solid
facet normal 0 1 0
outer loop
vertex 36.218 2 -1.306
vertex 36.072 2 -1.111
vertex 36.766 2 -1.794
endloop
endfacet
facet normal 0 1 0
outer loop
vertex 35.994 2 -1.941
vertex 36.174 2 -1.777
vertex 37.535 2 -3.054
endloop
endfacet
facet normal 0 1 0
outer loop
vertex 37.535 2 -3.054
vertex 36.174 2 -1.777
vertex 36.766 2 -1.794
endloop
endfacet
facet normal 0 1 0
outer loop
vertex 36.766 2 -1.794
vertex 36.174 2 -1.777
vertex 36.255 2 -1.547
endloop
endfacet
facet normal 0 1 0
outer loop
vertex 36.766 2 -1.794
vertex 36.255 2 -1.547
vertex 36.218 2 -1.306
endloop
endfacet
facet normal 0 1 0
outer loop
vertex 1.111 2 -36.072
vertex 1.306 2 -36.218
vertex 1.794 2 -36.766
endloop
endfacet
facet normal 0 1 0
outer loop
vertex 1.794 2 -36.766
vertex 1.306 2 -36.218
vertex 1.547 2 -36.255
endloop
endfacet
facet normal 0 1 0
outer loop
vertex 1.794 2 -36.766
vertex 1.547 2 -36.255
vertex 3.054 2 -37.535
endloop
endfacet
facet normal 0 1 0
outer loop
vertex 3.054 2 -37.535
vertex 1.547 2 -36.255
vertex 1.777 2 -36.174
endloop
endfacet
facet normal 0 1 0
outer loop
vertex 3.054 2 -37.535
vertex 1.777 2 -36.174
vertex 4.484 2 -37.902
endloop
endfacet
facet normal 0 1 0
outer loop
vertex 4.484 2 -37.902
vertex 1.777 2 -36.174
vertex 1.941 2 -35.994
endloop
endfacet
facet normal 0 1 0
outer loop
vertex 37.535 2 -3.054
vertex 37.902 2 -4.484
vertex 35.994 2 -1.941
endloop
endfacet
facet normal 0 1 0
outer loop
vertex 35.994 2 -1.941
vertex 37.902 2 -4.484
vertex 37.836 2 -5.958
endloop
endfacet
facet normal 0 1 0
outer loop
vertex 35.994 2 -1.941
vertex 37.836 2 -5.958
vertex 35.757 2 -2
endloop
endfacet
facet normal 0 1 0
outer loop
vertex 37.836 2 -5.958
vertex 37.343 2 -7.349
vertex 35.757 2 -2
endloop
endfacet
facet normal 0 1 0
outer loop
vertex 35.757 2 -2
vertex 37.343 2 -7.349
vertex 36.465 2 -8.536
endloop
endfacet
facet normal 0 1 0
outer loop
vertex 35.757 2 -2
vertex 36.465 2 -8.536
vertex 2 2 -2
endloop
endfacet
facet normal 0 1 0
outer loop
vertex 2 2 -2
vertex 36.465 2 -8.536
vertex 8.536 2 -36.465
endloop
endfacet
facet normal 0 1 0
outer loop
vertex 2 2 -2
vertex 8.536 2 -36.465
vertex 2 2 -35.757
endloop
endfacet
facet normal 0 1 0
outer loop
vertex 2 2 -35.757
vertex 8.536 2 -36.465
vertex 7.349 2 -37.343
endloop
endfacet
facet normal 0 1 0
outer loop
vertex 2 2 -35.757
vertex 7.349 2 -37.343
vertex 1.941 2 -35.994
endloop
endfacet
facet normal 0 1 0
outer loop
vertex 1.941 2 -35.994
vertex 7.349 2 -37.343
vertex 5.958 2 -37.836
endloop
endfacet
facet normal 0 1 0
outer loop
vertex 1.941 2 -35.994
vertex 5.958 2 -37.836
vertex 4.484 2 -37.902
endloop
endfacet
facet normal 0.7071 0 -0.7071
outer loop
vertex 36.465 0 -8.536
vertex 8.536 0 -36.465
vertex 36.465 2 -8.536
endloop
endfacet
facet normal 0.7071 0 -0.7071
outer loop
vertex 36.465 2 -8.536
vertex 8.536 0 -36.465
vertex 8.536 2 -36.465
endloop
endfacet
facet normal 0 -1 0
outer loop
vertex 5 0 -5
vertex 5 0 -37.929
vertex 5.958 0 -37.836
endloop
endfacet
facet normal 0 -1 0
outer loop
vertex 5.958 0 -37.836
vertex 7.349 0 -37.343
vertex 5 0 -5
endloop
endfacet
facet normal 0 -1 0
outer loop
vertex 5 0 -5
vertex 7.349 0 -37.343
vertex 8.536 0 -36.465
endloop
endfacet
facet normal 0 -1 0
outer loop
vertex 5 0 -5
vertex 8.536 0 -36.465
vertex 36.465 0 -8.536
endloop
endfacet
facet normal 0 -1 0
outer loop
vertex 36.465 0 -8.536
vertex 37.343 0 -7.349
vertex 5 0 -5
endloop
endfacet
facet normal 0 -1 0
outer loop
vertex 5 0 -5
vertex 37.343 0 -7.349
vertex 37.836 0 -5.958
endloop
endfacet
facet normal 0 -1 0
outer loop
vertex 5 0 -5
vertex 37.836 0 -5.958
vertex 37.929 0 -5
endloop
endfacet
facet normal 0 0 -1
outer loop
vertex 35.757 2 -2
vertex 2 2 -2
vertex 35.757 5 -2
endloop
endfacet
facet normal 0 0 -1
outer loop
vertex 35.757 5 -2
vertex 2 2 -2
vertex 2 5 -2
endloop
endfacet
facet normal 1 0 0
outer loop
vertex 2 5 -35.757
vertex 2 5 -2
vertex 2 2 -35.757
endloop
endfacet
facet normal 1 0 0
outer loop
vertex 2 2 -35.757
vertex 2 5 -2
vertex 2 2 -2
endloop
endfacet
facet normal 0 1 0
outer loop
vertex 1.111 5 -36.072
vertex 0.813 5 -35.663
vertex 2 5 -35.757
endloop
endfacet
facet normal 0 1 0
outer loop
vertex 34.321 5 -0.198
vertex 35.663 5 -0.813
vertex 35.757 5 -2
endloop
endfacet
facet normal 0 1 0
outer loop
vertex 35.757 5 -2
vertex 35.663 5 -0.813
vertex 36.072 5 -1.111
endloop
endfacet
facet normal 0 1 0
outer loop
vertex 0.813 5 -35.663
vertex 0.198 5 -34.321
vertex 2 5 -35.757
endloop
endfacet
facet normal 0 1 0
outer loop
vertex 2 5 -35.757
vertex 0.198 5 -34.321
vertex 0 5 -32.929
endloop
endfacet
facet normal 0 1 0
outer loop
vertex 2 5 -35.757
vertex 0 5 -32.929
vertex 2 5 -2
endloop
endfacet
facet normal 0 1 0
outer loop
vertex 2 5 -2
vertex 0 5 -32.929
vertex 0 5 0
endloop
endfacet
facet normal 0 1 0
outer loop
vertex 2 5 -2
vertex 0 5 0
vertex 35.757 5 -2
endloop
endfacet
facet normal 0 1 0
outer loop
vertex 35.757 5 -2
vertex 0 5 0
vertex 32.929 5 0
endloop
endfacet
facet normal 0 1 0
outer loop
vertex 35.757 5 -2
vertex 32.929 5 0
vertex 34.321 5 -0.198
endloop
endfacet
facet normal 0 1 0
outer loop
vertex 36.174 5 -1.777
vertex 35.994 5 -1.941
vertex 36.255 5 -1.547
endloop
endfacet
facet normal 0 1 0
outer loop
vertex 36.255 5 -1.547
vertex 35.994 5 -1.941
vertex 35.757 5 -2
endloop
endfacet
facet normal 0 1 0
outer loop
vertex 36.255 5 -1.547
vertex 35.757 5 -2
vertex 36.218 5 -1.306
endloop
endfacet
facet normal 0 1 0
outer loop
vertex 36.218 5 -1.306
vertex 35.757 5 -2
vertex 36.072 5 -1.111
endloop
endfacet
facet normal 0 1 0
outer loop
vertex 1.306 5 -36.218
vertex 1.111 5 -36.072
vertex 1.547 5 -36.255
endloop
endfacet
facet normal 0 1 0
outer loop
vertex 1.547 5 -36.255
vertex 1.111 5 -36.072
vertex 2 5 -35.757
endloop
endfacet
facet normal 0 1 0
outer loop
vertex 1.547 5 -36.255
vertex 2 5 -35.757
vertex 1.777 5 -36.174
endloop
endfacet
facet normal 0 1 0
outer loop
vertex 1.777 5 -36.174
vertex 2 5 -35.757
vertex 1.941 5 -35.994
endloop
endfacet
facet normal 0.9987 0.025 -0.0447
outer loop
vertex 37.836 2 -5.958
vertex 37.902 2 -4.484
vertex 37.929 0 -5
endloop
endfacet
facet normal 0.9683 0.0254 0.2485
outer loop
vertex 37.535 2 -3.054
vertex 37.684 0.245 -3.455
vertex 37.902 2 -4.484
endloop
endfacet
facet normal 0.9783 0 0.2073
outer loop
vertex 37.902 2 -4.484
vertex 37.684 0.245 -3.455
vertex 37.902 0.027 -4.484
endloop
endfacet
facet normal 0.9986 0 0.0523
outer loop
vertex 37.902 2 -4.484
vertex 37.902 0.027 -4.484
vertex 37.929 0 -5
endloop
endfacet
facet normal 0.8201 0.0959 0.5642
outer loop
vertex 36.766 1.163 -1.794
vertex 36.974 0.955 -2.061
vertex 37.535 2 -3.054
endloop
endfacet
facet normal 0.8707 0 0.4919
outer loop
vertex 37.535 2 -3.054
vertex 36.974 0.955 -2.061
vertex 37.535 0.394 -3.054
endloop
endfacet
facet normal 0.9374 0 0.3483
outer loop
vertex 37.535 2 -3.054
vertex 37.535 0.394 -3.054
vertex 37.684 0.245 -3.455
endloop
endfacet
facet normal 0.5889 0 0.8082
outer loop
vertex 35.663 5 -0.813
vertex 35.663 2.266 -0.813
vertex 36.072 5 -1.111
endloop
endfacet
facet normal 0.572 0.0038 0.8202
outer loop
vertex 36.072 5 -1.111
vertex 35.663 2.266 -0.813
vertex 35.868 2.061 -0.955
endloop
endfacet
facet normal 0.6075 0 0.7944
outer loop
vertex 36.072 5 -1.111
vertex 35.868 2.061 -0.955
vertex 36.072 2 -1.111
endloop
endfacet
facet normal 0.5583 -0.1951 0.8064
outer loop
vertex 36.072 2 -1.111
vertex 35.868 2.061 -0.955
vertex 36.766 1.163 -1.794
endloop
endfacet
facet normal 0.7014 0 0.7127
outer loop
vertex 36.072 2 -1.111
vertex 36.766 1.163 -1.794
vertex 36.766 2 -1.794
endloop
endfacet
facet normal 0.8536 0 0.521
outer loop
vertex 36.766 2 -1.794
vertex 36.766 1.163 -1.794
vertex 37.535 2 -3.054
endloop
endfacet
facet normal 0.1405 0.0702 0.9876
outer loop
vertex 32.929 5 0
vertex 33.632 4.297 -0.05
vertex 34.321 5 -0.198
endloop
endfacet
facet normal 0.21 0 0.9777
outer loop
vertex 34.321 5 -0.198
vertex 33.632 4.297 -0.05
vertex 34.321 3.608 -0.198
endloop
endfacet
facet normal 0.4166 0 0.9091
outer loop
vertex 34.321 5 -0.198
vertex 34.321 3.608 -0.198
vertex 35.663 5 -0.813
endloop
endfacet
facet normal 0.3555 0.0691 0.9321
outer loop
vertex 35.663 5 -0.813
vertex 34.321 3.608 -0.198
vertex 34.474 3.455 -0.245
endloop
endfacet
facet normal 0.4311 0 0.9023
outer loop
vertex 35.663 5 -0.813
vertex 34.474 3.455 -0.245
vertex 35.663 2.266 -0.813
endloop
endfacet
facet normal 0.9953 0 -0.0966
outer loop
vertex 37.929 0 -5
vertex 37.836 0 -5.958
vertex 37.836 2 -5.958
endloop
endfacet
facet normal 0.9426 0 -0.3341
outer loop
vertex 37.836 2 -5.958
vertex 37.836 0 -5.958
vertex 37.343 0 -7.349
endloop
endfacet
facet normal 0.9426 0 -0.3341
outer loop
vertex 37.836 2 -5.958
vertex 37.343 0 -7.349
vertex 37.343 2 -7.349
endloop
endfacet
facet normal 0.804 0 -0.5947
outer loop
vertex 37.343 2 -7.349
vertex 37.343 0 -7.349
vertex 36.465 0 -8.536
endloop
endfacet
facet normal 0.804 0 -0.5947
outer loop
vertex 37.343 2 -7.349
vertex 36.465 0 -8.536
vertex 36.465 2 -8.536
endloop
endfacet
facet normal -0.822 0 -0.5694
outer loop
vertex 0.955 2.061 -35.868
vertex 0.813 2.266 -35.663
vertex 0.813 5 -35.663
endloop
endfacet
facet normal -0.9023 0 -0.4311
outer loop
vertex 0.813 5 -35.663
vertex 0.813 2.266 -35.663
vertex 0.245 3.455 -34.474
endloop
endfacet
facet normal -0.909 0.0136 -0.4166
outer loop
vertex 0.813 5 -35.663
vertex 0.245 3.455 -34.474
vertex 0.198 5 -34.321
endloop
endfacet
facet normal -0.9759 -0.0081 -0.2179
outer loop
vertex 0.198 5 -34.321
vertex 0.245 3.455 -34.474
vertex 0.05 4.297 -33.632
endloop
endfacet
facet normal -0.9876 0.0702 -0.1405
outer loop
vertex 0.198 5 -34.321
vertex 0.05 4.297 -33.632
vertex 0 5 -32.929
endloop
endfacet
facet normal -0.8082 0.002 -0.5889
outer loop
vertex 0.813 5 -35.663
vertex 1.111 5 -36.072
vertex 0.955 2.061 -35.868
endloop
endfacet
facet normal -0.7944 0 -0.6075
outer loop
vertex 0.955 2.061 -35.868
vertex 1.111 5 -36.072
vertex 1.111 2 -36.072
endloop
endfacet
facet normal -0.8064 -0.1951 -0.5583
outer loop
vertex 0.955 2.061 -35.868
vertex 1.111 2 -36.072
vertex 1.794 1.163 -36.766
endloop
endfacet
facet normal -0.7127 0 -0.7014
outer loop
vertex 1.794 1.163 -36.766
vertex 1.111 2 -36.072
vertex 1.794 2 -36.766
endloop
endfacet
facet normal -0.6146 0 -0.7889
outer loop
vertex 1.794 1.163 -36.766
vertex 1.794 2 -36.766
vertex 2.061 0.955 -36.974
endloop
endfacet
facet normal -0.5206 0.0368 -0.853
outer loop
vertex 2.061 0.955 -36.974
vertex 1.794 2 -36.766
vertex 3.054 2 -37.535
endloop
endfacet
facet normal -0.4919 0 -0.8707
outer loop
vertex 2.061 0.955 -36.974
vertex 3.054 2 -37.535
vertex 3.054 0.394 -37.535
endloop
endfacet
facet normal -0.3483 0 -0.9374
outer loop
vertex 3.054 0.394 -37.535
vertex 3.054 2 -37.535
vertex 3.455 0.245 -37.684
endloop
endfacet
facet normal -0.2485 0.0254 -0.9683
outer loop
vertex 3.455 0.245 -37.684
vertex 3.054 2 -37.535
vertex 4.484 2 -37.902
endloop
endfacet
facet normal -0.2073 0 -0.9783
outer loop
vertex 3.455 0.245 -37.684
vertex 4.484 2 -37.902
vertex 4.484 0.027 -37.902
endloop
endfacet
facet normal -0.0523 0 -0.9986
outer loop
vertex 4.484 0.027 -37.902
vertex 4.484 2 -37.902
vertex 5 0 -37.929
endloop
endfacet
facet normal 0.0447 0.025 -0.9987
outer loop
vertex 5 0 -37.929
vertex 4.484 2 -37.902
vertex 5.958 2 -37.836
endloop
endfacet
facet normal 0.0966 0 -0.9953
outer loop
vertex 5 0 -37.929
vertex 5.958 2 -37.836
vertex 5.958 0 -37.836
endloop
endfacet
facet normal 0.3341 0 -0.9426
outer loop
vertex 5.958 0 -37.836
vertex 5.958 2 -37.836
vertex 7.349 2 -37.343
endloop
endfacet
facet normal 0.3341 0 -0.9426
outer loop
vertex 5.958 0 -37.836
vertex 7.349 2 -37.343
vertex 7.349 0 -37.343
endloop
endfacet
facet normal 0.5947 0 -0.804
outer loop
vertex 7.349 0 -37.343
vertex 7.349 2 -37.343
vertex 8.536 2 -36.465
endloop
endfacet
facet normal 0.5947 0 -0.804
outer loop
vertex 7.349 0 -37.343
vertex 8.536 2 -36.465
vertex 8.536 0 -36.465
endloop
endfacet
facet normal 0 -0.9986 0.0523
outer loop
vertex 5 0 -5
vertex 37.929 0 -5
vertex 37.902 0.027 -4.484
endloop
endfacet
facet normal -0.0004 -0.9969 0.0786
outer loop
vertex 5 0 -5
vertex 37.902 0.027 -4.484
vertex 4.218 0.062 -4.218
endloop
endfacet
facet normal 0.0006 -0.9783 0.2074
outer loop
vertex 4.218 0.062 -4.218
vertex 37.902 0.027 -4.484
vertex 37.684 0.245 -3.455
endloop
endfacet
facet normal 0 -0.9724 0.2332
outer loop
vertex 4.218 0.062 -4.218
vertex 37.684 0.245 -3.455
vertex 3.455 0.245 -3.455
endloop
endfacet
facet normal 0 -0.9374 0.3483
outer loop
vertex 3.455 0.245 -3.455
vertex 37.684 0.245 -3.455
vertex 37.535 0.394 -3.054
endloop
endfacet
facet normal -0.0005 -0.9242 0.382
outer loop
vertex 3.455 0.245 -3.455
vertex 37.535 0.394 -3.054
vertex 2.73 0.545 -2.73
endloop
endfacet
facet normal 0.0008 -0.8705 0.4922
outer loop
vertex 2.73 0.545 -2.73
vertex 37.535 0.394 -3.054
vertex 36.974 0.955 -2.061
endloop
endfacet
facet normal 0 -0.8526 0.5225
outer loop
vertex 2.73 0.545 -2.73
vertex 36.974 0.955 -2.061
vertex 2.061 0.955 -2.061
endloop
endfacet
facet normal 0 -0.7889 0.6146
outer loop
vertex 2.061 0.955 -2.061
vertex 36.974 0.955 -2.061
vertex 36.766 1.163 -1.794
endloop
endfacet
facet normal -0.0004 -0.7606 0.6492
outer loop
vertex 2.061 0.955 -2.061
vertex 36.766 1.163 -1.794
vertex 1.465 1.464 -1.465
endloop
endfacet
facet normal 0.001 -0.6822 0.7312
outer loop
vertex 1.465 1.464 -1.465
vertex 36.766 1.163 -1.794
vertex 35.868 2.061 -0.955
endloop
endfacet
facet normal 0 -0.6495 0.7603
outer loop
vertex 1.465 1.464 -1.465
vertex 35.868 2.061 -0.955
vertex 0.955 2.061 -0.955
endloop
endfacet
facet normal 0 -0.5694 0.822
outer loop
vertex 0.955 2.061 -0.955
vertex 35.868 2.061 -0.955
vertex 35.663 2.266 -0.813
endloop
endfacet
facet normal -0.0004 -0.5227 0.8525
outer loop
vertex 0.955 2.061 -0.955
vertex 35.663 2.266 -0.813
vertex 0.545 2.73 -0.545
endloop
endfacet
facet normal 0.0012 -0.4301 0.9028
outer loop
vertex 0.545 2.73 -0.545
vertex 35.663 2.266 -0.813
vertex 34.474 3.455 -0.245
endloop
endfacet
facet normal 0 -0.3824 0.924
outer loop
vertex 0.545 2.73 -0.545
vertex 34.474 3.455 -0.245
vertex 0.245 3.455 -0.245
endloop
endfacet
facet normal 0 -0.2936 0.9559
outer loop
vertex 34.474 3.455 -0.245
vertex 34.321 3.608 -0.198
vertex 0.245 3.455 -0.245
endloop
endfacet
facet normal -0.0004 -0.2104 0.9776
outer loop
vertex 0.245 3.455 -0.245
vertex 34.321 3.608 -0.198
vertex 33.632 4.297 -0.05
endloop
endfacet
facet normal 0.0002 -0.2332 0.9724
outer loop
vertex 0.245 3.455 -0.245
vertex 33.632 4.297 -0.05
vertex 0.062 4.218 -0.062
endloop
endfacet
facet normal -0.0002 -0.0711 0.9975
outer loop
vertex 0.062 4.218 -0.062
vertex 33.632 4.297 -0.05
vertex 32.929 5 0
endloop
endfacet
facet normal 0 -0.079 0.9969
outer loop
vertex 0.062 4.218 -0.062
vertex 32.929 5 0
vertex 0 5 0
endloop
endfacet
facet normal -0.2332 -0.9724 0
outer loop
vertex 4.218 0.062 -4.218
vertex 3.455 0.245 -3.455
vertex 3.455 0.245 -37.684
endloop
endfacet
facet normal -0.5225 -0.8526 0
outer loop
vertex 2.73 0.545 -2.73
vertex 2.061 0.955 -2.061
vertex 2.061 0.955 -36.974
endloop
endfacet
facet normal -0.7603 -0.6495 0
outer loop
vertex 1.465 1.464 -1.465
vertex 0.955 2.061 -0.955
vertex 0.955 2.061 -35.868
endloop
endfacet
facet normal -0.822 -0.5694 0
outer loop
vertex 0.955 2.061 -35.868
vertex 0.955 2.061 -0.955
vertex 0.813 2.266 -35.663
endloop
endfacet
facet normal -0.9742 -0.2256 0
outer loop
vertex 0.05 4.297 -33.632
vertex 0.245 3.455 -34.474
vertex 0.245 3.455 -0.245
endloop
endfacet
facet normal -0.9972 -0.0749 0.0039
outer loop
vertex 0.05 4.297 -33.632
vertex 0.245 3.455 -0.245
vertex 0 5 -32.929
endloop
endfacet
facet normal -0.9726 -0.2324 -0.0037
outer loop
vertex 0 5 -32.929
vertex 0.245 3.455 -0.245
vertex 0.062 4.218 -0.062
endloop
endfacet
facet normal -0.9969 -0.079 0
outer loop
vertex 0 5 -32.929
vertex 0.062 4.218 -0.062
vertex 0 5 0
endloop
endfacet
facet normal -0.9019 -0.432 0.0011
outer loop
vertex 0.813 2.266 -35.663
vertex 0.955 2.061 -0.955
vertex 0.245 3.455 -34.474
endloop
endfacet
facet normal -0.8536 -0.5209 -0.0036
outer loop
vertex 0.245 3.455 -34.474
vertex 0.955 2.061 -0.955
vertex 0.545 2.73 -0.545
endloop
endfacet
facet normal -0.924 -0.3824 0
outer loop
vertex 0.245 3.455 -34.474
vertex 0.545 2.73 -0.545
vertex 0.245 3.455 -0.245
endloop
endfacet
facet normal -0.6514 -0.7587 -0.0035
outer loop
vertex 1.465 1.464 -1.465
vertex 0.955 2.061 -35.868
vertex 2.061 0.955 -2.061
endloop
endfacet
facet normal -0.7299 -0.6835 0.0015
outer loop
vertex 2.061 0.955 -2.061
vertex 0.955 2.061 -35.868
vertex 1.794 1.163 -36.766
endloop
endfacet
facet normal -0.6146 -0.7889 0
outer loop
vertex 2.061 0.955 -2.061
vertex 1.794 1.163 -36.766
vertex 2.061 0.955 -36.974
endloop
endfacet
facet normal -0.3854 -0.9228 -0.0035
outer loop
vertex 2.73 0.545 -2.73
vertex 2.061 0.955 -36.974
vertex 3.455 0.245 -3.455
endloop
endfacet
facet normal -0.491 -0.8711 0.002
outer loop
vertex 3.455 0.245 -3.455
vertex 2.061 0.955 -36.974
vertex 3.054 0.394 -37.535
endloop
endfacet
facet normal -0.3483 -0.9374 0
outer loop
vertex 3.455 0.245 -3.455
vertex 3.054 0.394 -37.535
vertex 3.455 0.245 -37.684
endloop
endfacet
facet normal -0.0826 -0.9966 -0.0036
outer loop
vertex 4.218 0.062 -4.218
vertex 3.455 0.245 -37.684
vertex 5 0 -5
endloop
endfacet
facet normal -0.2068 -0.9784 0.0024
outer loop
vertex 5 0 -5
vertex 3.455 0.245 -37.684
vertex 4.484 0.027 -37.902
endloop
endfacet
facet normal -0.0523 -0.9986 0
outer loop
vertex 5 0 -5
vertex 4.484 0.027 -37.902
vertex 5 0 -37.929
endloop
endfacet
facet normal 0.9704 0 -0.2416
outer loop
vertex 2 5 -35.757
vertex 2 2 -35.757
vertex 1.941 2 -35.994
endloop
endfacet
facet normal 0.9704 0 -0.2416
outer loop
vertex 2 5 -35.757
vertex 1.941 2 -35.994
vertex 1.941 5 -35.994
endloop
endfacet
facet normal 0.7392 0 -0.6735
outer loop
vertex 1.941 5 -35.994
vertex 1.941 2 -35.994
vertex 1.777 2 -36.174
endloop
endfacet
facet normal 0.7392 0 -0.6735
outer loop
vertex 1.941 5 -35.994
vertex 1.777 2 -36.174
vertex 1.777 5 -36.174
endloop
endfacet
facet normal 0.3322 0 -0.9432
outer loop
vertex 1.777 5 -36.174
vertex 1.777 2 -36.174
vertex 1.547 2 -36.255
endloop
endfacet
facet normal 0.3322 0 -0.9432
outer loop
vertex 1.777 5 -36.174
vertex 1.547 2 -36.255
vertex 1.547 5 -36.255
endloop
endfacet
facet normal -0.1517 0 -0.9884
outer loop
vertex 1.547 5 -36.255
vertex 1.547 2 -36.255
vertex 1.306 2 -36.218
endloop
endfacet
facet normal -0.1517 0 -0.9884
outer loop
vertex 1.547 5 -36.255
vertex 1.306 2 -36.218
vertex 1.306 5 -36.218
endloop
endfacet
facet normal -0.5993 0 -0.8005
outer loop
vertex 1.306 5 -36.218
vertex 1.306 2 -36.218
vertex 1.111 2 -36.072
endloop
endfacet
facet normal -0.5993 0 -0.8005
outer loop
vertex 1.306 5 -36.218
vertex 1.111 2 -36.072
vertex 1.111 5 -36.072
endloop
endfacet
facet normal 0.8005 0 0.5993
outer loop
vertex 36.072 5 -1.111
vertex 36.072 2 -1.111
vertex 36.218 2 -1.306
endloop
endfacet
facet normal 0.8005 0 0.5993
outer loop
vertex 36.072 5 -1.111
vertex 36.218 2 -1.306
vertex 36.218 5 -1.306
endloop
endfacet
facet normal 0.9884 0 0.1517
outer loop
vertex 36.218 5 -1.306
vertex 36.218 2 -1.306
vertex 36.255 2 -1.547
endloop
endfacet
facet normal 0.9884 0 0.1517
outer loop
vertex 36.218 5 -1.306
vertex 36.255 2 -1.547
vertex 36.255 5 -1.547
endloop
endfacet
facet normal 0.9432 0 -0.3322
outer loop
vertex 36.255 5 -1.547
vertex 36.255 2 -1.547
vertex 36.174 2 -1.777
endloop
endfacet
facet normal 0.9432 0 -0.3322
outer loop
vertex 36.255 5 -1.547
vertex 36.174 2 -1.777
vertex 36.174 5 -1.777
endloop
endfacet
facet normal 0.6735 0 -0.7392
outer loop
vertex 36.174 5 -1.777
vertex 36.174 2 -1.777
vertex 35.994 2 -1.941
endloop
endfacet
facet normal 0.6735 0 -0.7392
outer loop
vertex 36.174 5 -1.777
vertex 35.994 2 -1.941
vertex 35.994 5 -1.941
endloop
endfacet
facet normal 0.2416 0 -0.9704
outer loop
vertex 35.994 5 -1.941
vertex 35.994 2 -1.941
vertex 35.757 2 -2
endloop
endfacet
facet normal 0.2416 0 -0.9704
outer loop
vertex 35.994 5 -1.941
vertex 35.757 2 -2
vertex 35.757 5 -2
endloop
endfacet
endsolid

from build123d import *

# Parameters (mm, degrees)
BOSS_EXTRUDE1_DEPTH = 2
BOSS_EXTRUDE2_DEPTH = 3
FILLET1_R           = 5
FILLET2_R           = 0.5


with BuildPart() as part:
    # Sketch1 → Boss-Extrude1 (new body)
    with BuildSketch(Plane(origin=(0, 0, 0), x_dir=(1, 0, 0), z_dir=(0, 1, 0))):
        Polygon((0, 0), (0, 45), (45, 0), align=None)
    extrude(amount=BOSS_EXTRUDE1_DEPTH)

    # Sketch2 → Boss-Extrude2 (add)
    with BuildSketch(Plane(origin=(0, 2, 0), x_dir=(1, 0, 0), z_dir=(0, 1, 0))):
        Polygon((2, 43), (2, 2), (43, 2), (45, 0), (0, 0), (0, 45), align=None)
    extrude(amount=BOSS_EXTRUDE2_DEPTH)

    # Fillet1
    fillet1_edges = [part.edges().sort_by_distance(p)[0] for p in [
        (0, 0, -22.5),
        (22.5, 0, 0),
        (45, 2.5, 0),
        (0, 2.5, -45),
    ]]
    fillet(fillet1_edges, radius=FILLET1_R - 0.0001)  # a hair under: the kernel refuses the full size

    # Fillet2
    fillet2_edges = [part.edges().sort_by_distance(p)[0] for p in [
        (36.929123609, 3.5, -2),
        (2, 3.5, -36.929123609),
    ]]
    fillet(fillet2_edges, radius=FILLET2_R)


solid = part.part
